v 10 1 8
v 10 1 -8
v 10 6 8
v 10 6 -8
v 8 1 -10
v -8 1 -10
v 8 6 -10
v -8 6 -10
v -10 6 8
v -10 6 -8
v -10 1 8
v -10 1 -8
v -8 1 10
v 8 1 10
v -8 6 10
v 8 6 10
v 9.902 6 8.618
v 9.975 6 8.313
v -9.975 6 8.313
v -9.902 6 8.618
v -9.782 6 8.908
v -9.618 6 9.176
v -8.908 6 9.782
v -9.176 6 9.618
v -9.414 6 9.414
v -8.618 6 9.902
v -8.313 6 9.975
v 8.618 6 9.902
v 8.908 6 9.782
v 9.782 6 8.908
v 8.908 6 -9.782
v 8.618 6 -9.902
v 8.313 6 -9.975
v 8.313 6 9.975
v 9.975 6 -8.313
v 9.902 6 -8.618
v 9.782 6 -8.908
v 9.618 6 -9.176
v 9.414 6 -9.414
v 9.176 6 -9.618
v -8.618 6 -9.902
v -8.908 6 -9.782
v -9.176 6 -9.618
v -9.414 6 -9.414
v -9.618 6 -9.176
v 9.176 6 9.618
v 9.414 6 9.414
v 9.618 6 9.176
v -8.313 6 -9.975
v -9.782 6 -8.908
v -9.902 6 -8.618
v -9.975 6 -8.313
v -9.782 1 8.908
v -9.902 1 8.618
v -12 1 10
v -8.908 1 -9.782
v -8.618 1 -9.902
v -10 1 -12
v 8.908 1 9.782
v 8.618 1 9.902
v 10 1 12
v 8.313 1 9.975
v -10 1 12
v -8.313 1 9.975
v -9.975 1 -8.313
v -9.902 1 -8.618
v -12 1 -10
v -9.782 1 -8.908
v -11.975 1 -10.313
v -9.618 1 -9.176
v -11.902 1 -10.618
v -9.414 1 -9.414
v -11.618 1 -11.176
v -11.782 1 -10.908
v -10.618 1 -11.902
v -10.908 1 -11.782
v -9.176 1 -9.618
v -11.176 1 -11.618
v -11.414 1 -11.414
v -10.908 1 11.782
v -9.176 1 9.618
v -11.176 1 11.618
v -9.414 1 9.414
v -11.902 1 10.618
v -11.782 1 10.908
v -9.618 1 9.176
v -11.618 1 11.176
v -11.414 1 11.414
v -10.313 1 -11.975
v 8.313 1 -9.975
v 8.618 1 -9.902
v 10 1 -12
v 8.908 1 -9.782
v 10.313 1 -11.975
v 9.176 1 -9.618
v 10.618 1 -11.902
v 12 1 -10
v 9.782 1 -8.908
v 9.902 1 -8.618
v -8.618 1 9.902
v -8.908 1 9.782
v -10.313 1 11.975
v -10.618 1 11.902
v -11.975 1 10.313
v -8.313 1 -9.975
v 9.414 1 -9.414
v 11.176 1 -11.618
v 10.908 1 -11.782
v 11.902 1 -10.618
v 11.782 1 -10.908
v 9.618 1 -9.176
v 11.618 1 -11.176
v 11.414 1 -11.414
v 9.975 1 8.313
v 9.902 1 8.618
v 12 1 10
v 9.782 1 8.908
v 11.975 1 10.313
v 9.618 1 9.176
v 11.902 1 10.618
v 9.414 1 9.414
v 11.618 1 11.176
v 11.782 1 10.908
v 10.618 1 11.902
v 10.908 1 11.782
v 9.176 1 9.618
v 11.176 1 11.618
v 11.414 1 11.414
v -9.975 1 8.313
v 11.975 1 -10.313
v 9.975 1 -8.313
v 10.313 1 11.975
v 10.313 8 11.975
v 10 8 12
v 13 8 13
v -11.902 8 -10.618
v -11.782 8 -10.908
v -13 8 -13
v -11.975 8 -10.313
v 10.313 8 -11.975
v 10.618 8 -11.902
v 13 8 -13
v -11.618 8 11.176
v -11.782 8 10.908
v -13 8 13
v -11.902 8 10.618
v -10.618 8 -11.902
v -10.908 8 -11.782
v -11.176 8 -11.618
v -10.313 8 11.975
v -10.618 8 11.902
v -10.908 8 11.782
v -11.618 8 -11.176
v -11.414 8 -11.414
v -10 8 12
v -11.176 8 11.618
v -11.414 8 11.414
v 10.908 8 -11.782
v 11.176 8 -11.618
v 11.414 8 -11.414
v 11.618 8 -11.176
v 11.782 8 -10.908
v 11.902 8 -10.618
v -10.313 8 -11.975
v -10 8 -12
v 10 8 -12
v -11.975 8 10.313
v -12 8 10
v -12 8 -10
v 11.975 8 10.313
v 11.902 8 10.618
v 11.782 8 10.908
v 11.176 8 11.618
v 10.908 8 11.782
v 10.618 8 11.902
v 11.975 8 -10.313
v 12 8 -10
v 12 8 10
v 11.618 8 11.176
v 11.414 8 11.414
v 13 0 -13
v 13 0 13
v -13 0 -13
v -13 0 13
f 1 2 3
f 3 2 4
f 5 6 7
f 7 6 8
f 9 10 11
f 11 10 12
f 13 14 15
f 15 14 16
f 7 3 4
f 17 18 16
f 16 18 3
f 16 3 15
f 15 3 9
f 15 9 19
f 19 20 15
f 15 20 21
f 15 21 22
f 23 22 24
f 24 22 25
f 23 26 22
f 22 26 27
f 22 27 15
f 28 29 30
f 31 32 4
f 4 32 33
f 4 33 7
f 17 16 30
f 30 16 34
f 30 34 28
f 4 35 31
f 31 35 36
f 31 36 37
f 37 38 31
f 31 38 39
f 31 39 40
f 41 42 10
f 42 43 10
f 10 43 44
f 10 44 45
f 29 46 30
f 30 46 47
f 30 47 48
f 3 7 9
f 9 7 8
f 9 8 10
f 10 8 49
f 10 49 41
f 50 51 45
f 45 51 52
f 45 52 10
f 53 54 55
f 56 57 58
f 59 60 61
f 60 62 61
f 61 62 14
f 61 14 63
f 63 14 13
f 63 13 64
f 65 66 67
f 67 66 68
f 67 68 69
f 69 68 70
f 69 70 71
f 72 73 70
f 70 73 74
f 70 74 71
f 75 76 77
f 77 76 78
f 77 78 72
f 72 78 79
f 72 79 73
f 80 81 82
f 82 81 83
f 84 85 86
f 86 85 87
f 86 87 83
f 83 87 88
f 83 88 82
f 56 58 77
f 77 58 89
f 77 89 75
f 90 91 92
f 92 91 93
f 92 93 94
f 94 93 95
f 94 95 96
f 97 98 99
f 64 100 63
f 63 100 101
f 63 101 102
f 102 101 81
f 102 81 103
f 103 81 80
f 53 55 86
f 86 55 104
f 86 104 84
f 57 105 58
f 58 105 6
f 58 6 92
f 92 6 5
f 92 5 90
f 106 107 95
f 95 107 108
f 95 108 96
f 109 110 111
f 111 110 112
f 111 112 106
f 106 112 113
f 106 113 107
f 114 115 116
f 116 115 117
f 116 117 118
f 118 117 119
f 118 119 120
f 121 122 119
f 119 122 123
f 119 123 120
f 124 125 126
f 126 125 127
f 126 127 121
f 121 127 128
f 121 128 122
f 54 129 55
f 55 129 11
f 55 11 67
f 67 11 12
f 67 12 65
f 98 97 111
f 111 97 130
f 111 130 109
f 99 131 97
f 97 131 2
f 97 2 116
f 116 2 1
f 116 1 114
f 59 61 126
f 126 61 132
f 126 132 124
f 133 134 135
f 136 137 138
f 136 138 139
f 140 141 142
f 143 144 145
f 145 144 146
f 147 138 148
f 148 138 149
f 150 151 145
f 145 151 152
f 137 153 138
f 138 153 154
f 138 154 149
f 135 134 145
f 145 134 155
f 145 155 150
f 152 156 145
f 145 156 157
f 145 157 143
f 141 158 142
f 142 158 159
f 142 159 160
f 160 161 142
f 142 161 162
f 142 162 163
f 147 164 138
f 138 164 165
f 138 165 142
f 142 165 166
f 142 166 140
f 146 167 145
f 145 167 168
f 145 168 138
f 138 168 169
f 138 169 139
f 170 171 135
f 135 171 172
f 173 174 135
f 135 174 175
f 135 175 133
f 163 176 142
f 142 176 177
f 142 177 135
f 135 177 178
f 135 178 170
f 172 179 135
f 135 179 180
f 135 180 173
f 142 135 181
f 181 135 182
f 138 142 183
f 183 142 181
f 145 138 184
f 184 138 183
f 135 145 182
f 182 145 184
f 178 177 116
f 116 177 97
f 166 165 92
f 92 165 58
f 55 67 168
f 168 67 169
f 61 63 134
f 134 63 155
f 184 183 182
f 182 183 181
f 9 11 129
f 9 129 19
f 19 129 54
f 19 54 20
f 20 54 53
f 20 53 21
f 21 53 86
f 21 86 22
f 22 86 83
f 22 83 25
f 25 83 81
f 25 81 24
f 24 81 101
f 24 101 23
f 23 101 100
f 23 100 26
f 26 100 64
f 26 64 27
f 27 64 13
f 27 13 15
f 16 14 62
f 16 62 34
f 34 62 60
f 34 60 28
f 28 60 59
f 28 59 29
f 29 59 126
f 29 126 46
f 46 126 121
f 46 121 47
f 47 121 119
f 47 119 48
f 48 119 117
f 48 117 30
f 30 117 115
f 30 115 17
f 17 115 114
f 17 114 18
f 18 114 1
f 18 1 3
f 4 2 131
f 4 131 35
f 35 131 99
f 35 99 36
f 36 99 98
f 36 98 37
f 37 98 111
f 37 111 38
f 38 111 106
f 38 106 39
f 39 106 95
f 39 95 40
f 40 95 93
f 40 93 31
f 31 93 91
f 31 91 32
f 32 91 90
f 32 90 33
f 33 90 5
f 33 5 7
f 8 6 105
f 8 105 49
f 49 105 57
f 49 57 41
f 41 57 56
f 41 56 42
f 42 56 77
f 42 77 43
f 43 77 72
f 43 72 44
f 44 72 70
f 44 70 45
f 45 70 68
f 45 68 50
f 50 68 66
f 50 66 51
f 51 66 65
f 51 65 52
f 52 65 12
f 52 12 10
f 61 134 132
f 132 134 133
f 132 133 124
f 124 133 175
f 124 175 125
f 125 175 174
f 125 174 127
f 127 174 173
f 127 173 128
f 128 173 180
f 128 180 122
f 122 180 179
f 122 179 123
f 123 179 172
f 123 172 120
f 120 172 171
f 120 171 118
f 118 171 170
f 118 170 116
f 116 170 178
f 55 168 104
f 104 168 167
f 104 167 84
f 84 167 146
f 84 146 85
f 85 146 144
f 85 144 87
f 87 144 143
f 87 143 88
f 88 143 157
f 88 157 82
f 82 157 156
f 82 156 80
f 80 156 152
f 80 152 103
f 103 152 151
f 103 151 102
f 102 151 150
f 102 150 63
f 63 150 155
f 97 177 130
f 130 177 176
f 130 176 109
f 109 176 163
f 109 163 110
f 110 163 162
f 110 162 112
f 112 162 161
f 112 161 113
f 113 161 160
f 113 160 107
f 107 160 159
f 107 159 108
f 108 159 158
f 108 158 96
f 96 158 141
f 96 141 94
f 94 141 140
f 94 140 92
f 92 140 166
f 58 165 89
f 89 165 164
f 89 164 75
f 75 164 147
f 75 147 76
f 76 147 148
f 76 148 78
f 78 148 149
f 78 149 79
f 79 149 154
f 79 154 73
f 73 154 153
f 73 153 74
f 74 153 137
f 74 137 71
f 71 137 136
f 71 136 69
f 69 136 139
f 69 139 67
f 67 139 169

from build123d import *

# Parameters (mm, degrees)
SKETCH1_W           = 20
SKETCH1_H           = 20
BOSS_EXTRUDE1_DEPTH = 6
SKETCH2_W           = 24
SKETCH2_H           = 24
BOSS_EXTRUDE2_DEPTH = 1
SKETCH2_3_W         = 26
SKETCH2_3_H         = 26
SKETCH2_3_W_2       = 24
SKETCH2_3_H_2       = 24
BOSS_EXTRUDE3_DEPTH = 8
FILLET1_R           = 2
FILLET2_R           = 2


with BuildPart() as part:
    # Sketch1 → Boss-Extrude1 (new body)
    with BuildSketch(Plane(origin=(0, 0, 0), x_dir=(1, 0, 0), z_dir=(0, 1, 0))):
        Rectangle(SKETCH1_W, SKETCH1_H)
    extrude(amount=BOSS_EXTRUDE1_DEPTH)

    # Sketch2 → Boss-Extrude2 (add)
    with BuildSketch(Plane(origin=(0, 0, 0), x_dir=(1, 0, 0), z_dir=(0, 1, 0))):
        Rectangle(SKETCH2_W, SKETCH2_H)
    extrude(amount=BOSS_EXTRUDE2_DEPTH)

    # Sketch2<3> → Boss-Extrude3 (add)
    with BuildSketch(Plane(origin=(0, 0, 0), x_dir=(1, 0, 0), z_dir=(0, 1, 0))):
        Rectangle(SKETCH2_3_W, SKETCH2_3_H)
        Rectangle(SKETCH2_3_W_2, SKETCH2_3_H_2, mode=Mode.SUBTRACT)
    extrude(amount=BOSS_EXTRUDE3_DEPTH)

    # Fillet1
    fillet1_edges = [part.edges().sort_by_distance(p)[0] for p in [
        (10, 3.5, 10),
        (-10, 3.5, 10),
        (-10, 3.5, -10),
        (10, 3.5, -10),
    ]]
    fillet(fillet1_edges, radius=FILLET1_R)

    # Fillet2
    fillet2_edges = [part.edges().sort_by_distance(p)[0] for p in [
        (12, 4.5, -12),
        (-12, 4.5, -12),
        (-12, 4.5, 12),
        (12, 4.5, 12),
    ]]
    fillet(fillet2_edges, radius=FILLET2_R)


solid = part.part
